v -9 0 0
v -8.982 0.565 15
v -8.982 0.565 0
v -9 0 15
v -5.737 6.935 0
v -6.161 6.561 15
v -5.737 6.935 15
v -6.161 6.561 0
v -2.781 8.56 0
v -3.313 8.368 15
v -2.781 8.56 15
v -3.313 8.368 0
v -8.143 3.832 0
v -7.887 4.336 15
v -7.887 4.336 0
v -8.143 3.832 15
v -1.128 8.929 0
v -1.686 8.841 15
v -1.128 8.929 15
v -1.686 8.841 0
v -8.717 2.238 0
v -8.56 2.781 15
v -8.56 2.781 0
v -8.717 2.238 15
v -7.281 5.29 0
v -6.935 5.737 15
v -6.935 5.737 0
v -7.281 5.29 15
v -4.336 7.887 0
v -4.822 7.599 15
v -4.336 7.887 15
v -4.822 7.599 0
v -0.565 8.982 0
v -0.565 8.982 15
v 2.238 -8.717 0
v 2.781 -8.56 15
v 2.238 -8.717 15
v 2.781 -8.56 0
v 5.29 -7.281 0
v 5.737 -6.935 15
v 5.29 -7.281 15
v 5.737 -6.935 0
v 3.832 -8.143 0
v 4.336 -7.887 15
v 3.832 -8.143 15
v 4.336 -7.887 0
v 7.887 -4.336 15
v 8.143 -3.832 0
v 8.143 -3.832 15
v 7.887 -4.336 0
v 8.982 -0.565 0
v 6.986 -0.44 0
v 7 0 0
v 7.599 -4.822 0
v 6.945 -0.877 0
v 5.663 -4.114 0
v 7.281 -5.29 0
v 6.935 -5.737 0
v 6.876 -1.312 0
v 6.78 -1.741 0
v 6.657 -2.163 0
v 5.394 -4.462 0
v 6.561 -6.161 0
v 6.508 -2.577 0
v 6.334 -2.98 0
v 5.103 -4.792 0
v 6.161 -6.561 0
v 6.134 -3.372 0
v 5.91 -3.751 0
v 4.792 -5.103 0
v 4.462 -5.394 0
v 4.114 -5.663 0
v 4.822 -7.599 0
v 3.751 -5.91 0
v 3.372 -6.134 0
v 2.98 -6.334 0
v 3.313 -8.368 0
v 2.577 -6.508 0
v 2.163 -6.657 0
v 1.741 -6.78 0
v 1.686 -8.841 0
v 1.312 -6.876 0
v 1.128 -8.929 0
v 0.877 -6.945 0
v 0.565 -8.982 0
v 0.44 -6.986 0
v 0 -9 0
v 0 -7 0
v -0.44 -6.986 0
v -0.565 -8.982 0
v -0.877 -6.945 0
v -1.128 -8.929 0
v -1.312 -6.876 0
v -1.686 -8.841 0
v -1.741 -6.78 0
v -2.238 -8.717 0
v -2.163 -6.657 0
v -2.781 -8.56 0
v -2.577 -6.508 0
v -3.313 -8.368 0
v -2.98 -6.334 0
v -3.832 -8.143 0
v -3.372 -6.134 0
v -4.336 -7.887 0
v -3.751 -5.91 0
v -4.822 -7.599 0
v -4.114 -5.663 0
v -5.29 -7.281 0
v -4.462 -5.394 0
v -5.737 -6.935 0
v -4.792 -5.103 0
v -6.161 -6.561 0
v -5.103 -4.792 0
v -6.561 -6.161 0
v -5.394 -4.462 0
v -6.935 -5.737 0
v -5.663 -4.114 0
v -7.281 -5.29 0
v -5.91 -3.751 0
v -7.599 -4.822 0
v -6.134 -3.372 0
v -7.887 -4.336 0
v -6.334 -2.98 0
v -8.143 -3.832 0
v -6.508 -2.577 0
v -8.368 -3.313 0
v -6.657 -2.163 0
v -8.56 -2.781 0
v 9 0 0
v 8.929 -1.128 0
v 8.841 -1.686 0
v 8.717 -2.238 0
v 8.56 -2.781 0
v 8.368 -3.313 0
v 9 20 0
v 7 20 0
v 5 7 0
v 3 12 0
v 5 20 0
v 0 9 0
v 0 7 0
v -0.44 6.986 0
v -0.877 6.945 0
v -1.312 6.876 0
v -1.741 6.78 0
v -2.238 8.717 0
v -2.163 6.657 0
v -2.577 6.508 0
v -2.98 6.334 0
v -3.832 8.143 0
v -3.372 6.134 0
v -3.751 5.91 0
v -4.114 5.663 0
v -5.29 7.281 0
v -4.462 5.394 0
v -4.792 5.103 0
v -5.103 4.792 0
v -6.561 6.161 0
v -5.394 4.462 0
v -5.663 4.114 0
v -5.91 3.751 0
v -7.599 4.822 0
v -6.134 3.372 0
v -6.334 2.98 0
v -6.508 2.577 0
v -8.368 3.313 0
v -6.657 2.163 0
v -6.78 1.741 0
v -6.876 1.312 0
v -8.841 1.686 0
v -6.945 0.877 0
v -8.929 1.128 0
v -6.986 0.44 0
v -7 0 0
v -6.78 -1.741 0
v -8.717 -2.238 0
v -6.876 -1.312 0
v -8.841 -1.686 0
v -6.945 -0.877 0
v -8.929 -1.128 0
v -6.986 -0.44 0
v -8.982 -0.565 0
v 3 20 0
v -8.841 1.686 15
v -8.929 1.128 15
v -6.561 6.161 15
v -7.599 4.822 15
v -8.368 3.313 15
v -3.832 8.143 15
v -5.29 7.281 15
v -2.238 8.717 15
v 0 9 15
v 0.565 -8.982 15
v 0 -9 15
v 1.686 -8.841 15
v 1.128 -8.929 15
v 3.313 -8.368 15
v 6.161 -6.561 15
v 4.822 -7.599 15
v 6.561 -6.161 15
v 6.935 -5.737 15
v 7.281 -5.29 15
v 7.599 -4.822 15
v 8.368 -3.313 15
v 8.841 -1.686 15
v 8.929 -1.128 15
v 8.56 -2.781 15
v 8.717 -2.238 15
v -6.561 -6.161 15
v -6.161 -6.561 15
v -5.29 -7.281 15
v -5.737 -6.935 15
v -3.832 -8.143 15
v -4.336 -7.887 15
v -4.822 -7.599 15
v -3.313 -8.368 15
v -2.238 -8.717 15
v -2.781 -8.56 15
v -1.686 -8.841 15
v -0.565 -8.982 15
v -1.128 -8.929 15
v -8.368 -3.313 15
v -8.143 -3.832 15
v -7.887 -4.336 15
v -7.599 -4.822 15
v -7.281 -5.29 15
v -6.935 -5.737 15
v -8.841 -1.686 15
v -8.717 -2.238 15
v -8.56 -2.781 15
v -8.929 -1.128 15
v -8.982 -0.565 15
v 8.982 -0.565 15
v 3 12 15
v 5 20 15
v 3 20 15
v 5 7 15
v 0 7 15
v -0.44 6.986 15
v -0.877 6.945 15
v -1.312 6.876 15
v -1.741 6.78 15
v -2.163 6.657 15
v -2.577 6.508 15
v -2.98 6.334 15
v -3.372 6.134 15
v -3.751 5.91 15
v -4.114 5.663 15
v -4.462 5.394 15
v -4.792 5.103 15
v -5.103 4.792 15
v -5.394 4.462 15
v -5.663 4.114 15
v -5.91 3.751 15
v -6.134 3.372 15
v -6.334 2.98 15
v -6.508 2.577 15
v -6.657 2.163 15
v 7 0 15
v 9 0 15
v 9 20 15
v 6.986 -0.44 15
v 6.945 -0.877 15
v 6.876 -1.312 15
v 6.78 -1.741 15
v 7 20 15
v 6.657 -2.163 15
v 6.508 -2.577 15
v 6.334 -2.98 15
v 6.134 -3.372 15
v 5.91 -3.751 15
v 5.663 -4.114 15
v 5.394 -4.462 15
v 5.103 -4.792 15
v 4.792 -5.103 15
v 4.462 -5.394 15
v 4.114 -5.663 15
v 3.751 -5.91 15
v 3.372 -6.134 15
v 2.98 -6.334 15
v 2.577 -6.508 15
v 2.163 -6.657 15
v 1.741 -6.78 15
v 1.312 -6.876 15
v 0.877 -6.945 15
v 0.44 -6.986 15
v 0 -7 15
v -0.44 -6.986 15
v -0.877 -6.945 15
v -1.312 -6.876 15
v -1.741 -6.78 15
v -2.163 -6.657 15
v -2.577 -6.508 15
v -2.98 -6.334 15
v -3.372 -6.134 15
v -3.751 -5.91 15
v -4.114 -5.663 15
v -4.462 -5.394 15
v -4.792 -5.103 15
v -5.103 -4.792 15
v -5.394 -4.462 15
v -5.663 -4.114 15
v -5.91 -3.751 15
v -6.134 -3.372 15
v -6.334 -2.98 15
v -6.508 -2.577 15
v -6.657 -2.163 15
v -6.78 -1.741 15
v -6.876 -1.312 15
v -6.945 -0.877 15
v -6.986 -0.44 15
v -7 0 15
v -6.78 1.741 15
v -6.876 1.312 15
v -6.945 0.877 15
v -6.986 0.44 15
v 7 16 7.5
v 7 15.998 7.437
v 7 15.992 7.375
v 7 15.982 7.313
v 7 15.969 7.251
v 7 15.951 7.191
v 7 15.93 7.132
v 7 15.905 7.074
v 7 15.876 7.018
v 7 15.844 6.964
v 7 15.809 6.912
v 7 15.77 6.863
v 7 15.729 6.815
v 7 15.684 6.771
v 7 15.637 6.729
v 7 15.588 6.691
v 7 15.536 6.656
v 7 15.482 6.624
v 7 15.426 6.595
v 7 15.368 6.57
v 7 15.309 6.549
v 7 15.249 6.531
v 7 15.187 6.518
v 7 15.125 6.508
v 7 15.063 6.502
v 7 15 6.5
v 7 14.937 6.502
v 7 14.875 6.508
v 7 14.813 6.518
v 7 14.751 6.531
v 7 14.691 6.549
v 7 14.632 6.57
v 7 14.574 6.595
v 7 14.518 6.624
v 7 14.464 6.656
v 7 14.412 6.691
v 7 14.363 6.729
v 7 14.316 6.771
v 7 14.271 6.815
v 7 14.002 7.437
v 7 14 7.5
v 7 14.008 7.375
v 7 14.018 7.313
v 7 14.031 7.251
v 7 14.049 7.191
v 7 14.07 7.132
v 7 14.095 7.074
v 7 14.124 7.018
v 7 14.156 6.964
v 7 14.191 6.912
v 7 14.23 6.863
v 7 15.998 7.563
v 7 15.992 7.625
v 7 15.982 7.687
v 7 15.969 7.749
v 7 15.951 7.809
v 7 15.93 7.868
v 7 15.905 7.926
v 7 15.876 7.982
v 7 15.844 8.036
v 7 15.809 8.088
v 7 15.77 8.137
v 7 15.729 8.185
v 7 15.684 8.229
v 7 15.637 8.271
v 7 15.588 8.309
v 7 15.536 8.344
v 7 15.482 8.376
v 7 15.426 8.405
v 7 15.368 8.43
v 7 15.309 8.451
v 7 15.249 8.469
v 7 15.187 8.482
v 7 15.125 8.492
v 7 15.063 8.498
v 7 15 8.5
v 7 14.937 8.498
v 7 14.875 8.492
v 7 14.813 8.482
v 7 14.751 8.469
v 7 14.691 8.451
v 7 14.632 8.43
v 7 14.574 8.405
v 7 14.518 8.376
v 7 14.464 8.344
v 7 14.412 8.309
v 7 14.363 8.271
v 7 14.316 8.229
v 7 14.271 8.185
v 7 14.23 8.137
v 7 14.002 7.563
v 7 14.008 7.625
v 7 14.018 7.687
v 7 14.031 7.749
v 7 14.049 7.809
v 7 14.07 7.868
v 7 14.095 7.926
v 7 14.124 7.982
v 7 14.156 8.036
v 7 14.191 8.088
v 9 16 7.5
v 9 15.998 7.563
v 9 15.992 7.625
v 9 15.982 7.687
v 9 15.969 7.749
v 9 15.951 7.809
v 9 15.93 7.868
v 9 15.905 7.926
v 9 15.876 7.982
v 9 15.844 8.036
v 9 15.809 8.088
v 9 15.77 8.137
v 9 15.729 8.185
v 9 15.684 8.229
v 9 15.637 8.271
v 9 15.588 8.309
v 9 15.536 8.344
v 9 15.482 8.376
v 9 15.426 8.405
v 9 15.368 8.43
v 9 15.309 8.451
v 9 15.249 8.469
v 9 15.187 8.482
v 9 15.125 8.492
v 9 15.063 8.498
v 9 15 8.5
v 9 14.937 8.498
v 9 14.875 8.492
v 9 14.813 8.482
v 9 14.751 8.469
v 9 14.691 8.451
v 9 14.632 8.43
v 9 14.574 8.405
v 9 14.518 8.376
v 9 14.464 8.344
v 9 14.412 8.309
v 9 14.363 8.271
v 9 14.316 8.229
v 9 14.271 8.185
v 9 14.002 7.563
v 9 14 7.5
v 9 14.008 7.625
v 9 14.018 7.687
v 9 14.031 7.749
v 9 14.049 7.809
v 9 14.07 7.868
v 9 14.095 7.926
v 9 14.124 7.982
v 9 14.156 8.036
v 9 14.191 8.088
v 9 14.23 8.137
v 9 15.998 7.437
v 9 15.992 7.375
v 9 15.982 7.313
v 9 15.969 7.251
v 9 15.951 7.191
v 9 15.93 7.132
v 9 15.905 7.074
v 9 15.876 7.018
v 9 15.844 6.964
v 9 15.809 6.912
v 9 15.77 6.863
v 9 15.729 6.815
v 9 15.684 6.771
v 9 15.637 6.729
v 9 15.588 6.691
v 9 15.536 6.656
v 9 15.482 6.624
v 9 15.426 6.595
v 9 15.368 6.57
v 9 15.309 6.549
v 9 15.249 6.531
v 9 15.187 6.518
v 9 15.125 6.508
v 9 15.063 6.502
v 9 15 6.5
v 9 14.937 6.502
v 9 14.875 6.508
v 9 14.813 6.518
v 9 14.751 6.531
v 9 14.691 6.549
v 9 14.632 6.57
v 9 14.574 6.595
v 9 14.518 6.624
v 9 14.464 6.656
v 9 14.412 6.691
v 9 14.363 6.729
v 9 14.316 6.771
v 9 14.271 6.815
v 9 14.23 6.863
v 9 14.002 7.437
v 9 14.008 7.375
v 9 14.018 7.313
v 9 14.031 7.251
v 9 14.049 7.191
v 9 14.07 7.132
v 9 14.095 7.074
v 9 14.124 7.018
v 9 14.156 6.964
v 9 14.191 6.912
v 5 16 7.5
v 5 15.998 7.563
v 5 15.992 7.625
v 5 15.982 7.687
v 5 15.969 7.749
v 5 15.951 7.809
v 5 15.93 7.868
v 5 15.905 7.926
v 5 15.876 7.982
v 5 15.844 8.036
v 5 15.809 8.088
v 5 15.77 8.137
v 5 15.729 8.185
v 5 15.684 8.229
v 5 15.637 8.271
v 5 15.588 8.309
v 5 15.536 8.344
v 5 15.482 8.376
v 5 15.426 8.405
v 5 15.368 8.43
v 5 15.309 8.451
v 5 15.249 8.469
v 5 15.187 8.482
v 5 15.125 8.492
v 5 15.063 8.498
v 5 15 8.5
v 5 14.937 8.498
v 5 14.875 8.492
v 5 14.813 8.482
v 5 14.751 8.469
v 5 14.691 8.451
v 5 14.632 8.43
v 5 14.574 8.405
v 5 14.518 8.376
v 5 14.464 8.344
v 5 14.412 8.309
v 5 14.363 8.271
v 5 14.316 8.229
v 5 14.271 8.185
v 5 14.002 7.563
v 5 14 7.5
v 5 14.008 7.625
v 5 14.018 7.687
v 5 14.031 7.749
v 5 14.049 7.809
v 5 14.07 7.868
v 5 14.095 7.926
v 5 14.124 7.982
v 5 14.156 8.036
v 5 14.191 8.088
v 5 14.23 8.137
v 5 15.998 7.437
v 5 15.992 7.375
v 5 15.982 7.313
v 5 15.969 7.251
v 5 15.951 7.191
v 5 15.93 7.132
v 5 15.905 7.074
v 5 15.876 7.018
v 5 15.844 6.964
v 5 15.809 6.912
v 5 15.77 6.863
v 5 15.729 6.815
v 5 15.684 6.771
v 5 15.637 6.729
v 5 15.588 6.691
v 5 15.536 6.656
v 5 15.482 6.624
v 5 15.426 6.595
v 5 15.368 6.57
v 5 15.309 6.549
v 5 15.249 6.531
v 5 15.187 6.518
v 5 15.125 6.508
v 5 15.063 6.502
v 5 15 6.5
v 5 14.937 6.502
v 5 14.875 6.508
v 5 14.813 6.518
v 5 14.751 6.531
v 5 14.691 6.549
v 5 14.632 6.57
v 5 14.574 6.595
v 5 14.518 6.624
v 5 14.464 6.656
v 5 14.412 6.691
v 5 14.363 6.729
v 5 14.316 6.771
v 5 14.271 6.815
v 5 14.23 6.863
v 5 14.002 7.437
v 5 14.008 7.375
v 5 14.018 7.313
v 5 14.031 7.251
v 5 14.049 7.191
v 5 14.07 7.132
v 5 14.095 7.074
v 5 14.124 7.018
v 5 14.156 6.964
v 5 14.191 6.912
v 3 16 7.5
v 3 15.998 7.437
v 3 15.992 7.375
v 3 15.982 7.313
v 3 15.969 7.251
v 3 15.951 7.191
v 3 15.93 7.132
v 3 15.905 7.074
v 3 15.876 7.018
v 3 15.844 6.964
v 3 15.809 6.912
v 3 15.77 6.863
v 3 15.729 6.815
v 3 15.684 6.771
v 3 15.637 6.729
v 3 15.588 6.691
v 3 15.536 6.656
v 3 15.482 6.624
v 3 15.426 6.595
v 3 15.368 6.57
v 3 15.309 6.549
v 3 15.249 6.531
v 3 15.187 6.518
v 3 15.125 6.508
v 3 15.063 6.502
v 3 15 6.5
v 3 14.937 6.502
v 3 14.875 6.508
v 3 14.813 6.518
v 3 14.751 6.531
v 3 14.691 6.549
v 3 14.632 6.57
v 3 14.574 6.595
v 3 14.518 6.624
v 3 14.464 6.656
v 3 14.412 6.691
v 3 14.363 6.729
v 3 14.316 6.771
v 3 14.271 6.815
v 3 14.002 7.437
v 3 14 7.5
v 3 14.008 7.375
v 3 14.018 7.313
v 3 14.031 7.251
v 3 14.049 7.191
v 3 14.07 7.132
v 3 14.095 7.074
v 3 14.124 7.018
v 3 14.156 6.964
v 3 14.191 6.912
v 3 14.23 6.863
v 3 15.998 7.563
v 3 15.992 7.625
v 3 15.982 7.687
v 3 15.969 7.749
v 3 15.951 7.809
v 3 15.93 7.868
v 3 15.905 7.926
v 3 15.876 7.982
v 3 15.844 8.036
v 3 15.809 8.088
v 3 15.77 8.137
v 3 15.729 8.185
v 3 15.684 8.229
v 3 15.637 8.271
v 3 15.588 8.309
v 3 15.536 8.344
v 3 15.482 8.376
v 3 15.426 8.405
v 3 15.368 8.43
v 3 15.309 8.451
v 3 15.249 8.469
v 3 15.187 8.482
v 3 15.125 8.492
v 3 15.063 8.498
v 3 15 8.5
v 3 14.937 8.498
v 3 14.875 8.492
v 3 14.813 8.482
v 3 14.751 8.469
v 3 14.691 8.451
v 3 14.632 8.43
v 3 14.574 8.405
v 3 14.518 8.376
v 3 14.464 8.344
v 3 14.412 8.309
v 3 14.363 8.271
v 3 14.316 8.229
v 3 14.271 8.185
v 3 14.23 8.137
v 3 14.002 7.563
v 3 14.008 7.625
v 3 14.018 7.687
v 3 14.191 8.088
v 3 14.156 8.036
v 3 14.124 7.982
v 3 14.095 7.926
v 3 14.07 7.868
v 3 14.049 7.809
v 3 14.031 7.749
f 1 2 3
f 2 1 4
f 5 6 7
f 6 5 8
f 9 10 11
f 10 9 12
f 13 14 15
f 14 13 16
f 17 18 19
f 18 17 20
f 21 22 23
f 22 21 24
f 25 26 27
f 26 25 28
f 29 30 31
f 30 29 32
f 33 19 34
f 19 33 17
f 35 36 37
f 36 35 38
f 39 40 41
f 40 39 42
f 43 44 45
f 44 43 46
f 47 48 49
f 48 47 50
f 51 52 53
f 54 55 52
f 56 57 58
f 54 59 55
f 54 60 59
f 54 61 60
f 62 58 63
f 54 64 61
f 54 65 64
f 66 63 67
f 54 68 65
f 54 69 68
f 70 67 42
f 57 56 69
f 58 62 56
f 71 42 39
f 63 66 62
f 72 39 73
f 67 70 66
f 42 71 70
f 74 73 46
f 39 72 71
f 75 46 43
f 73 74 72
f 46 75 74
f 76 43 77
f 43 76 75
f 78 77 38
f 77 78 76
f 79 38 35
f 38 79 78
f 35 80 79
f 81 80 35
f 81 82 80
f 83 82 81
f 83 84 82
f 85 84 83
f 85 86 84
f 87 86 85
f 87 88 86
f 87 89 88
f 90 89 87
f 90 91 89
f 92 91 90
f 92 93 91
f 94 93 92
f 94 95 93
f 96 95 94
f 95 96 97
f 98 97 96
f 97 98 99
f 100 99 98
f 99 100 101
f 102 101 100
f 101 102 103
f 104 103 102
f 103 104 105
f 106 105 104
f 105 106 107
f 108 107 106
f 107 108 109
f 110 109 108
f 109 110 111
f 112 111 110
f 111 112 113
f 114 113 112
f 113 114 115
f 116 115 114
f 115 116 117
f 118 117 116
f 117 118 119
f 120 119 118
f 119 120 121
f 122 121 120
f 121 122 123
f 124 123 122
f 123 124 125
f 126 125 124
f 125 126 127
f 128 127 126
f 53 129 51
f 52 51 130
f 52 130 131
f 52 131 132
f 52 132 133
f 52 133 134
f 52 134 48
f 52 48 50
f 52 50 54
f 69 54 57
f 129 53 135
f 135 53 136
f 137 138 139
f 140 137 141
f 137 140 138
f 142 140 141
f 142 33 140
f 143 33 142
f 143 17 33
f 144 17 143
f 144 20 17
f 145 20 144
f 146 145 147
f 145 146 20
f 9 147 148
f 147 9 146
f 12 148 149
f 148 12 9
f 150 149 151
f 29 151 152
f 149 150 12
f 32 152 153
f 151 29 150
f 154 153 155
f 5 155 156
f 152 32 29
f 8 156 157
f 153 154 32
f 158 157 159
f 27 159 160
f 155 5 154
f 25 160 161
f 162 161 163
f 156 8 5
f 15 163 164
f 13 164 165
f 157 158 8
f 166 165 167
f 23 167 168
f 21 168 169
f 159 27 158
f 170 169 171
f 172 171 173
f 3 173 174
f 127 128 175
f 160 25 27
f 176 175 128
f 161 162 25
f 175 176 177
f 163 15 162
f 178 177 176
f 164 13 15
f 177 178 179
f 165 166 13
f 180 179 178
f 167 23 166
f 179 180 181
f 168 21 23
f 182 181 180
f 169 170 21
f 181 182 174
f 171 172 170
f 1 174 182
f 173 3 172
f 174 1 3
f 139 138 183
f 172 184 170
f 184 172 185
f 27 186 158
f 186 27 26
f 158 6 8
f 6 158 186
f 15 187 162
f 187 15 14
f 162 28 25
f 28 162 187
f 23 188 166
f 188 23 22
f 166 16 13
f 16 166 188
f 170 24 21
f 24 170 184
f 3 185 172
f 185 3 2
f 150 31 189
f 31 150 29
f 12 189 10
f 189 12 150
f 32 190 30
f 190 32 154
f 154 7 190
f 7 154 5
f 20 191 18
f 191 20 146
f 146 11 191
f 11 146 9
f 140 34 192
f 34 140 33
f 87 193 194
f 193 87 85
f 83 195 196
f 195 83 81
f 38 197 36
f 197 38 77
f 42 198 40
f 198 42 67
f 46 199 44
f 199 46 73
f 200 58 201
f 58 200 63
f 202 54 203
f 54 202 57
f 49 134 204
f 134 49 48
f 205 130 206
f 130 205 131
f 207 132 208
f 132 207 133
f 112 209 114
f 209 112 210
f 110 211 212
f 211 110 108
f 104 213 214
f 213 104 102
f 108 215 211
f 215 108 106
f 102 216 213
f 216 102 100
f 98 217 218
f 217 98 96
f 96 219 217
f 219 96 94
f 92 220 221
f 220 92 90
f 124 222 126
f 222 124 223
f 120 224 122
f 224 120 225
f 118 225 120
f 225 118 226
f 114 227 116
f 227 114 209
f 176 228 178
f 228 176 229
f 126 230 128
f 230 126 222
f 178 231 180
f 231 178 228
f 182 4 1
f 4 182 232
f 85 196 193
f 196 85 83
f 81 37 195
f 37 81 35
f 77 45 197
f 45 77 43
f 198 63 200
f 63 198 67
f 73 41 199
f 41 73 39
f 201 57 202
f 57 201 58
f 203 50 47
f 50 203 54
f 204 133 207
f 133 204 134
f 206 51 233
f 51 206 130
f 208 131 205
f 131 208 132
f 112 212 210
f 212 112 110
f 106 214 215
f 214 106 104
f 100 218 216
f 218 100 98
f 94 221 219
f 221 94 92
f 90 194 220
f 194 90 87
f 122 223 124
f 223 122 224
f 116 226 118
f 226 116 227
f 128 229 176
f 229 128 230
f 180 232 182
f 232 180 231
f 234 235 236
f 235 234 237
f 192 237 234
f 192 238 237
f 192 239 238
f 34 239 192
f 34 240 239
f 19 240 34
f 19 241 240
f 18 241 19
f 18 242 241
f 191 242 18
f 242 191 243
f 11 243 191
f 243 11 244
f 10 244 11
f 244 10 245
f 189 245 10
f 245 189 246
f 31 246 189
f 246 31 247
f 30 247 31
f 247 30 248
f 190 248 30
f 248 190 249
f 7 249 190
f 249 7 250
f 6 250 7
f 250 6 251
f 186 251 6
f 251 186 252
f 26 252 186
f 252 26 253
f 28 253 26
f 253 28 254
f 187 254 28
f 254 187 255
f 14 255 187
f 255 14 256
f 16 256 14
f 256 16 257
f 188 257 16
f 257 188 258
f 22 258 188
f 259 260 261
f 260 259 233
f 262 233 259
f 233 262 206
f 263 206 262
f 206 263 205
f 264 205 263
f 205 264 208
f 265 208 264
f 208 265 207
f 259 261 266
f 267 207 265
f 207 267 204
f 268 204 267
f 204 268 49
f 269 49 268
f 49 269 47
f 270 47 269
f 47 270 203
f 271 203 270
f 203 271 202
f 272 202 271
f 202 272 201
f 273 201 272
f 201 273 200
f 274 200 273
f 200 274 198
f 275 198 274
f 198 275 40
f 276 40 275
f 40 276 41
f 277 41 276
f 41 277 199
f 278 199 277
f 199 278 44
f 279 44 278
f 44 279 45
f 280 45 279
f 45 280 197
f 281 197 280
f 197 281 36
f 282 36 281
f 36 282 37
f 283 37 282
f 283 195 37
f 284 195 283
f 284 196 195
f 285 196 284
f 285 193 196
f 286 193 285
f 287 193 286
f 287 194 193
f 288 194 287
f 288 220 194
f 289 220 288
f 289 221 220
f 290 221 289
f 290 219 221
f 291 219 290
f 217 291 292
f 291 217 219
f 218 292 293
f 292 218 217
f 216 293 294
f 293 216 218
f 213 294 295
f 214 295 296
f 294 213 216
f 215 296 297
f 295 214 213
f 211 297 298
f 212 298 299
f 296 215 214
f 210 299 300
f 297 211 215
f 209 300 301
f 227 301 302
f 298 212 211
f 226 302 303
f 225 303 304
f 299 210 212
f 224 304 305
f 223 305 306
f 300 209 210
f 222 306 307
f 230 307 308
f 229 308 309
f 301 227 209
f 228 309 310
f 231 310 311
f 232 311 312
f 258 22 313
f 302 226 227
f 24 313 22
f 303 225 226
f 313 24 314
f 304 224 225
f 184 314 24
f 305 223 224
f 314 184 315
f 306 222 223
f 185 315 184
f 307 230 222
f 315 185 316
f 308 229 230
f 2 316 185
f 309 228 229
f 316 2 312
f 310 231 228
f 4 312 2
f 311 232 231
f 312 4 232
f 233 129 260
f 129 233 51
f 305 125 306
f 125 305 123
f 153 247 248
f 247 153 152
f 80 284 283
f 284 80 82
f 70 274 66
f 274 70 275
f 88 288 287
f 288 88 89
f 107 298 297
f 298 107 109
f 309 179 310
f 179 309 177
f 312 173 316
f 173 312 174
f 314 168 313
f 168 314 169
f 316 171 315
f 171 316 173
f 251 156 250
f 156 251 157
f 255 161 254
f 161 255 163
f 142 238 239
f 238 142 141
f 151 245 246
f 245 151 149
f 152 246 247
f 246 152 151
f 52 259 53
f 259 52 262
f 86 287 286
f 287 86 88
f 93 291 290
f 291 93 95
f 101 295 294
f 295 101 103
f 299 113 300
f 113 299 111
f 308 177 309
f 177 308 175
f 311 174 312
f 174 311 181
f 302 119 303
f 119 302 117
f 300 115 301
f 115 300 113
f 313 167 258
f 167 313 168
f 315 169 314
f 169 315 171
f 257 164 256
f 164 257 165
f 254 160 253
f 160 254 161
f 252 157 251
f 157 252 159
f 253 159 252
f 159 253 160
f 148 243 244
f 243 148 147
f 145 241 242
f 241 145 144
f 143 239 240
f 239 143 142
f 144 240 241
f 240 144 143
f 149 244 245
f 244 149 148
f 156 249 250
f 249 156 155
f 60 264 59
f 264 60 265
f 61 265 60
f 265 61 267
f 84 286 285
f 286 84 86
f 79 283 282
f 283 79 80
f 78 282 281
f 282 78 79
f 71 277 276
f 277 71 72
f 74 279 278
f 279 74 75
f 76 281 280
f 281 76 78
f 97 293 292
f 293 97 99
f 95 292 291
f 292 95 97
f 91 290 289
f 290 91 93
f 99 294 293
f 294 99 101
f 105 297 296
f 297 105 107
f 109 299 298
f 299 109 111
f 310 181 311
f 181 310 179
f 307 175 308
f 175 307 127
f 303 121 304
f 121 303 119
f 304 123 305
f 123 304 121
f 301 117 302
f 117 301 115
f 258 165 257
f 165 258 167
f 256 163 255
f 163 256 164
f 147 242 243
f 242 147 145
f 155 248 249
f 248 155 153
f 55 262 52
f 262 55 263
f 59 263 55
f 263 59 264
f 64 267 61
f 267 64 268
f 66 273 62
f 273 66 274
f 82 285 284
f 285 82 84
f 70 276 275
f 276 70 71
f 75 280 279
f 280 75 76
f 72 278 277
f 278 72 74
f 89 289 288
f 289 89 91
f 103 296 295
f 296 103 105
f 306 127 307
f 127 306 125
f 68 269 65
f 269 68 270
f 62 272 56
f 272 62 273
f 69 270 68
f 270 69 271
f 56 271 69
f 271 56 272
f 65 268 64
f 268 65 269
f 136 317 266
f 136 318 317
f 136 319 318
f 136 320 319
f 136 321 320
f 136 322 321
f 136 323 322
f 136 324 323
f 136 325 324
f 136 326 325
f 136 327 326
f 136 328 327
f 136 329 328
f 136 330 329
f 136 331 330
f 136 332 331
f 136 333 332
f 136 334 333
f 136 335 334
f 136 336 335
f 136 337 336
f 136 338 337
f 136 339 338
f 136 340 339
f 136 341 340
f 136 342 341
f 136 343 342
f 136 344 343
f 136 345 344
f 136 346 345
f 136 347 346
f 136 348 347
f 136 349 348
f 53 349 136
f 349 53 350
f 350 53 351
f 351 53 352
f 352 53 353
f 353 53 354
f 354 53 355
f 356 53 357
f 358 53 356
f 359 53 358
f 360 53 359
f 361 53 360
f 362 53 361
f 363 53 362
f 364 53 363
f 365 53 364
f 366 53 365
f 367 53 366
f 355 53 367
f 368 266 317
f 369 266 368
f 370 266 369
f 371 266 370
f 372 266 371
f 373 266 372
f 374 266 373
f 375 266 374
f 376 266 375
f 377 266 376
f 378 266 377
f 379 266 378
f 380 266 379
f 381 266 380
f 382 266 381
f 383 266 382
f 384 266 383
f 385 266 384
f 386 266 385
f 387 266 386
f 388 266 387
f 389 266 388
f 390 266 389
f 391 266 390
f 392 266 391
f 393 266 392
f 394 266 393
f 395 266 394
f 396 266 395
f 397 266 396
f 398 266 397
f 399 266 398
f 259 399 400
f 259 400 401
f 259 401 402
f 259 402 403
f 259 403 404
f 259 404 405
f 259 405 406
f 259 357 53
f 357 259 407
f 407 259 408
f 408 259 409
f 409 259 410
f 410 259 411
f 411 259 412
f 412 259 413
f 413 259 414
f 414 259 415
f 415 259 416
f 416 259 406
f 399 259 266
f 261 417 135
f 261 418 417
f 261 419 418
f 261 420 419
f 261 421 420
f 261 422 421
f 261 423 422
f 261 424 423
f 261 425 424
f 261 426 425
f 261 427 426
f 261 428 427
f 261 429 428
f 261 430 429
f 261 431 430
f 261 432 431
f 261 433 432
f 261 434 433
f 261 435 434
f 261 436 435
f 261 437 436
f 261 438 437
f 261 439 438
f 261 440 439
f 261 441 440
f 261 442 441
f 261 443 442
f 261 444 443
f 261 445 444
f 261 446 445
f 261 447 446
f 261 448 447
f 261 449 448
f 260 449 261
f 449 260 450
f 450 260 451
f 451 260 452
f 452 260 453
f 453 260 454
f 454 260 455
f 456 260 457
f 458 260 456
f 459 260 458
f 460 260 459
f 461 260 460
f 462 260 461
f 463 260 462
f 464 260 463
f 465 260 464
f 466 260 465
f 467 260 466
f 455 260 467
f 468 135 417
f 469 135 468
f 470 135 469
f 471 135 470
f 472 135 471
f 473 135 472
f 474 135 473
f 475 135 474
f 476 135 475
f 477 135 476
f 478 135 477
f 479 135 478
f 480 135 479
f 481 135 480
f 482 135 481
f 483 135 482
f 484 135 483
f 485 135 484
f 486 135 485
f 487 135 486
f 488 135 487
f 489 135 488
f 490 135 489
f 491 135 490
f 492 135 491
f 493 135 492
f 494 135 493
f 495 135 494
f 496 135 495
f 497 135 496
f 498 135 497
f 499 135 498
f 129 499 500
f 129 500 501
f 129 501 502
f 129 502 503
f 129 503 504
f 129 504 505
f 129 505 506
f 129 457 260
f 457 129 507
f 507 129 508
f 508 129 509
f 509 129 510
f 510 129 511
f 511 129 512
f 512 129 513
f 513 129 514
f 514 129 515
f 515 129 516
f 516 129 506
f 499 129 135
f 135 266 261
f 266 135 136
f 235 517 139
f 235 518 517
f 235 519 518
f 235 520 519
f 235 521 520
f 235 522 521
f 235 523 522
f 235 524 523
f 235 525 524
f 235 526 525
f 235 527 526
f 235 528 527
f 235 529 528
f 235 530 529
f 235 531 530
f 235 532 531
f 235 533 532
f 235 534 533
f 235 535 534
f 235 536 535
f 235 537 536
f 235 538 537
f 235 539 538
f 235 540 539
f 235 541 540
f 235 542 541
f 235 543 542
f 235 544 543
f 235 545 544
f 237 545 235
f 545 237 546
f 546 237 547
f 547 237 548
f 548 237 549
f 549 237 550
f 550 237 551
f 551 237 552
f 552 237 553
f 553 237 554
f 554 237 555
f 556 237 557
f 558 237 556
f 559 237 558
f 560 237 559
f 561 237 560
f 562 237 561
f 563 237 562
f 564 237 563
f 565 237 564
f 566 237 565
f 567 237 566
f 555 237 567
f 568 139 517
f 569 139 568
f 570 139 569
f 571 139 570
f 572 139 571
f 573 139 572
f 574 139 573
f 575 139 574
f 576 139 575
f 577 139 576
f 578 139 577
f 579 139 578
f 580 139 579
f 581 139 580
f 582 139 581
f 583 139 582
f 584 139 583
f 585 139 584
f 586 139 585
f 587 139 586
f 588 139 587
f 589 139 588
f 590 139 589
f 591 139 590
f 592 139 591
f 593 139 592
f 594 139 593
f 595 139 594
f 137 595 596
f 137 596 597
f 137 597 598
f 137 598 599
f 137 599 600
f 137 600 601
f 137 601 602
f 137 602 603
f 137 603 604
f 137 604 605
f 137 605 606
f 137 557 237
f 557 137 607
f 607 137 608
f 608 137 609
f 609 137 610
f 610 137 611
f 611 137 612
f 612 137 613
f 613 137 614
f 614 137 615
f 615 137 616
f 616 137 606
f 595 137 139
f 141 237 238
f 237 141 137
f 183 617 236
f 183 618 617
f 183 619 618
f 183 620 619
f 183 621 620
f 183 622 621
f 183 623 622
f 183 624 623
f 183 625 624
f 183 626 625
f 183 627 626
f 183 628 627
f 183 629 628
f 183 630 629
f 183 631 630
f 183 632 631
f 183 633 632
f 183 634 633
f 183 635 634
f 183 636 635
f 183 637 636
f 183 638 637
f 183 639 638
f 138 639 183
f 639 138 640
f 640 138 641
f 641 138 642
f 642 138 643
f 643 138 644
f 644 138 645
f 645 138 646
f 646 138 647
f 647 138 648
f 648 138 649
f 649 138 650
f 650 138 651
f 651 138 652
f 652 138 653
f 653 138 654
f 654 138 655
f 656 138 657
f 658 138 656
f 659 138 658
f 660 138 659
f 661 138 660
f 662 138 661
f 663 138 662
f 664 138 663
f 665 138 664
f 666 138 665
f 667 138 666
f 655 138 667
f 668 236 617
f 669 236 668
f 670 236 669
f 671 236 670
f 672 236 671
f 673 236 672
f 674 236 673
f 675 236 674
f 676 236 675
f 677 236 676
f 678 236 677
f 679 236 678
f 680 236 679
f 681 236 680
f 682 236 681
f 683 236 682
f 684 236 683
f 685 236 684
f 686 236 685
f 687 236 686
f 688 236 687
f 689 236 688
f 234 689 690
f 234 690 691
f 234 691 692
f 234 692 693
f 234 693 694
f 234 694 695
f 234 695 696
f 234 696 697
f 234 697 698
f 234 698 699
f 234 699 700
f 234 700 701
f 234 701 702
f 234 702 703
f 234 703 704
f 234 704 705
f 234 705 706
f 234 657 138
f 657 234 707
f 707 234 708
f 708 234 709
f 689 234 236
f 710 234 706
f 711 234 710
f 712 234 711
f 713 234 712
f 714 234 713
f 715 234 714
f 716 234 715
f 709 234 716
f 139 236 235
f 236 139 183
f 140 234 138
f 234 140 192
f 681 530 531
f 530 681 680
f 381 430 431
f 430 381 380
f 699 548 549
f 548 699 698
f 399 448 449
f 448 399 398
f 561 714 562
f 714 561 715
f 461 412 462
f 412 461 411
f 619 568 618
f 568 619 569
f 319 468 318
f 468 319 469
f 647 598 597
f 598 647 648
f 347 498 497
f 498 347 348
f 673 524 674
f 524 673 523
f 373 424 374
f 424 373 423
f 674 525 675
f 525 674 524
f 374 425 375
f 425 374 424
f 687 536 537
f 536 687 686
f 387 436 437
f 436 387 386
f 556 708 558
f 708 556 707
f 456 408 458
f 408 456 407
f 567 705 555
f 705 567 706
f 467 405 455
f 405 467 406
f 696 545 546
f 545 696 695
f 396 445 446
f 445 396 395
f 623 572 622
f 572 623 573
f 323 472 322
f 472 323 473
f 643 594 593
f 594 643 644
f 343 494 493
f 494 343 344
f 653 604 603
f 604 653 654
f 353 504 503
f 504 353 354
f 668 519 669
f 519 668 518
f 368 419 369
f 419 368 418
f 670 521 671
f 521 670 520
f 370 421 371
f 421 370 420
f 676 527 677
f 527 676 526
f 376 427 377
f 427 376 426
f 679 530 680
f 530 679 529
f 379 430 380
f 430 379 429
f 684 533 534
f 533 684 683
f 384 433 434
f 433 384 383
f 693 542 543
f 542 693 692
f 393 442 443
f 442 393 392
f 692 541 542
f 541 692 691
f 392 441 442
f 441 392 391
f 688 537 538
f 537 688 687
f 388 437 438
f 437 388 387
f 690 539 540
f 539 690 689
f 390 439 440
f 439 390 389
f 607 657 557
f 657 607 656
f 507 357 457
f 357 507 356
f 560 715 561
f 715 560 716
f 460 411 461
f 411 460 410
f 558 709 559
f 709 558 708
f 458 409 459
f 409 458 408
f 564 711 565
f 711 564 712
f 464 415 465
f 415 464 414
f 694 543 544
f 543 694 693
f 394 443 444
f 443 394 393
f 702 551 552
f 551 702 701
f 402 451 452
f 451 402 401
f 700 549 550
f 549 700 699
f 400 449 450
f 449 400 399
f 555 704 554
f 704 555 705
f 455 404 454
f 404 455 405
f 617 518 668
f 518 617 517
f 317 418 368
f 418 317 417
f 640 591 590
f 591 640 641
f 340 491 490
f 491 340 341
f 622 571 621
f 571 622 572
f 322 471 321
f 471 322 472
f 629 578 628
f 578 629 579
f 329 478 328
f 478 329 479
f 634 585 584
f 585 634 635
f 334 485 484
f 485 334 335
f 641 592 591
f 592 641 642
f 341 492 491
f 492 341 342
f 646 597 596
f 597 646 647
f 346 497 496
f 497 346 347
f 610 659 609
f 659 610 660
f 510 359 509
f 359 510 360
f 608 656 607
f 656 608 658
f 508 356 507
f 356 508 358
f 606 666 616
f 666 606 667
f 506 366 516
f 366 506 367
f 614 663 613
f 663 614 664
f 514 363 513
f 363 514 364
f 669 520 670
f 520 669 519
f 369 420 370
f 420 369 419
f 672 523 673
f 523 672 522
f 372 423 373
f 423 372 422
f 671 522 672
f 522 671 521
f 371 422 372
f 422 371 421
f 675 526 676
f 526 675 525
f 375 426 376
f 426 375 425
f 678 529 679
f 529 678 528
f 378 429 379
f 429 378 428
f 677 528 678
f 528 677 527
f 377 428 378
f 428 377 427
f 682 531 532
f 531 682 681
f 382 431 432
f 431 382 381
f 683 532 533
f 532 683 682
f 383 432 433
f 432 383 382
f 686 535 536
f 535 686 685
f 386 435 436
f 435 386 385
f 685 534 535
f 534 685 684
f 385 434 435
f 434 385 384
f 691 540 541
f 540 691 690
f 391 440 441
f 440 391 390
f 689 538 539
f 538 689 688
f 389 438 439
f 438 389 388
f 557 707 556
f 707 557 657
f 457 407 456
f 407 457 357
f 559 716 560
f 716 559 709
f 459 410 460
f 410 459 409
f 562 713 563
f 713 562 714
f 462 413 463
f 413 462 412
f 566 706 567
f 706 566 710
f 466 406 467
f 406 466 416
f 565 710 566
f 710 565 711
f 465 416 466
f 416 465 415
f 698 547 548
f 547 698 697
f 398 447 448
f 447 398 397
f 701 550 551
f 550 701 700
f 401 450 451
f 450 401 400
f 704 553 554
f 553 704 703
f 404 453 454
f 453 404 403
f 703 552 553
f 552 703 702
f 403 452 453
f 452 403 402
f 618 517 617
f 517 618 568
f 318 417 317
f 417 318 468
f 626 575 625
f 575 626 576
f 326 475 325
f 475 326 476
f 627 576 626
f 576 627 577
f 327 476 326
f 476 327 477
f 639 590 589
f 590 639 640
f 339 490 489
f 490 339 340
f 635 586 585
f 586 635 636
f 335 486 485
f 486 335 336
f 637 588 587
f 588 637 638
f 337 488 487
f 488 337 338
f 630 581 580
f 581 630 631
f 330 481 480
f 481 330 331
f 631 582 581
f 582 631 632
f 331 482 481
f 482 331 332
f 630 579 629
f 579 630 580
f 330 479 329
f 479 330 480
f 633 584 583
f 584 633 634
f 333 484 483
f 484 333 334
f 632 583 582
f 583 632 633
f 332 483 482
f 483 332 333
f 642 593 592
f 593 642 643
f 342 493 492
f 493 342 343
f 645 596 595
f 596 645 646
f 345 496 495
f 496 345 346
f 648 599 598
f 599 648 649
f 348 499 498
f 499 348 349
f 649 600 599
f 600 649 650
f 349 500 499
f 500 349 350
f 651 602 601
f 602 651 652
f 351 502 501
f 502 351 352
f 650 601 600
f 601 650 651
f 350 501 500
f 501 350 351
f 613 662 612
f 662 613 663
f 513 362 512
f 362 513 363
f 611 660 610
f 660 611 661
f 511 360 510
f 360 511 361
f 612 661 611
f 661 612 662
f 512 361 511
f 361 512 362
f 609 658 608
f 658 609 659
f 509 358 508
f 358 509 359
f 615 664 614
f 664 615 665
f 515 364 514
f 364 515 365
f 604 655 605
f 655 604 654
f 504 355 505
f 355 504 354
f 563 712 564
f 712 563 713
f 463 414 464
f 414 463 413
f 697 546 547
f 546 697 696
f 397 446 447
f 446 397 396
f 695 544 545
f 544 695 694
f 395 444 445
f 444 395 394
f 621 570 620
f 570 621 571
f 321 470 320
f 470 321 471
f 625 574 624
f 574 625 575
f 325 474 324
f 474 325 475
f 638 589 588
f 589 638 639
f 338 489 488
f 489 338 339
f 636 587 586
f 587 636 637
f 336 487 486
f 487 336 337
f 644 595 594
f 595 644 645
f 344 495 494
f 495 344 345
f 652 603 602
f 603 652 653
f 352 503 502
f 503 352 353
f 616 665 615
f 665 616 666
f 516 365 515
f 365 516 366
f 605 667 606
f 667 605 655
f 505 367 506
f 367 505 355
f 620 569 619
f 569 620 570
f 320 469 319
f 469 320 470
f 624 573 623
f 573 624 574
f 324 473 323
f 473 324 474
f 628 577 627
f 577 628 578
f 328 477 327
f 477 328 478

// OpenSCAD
$fn = 100;

_inner_size_radius=7; //7=LED pipe holder


difference() {
    
    union() {
        difference() {
            cylinder(h=15, r=_inner_size_radius+2);
            translate([0, 0, -1])
            cylinder(h=17, r=_inner_size_radius);

            color("red")
            translate([0, 0, -1])
            cube([9, 10, 17]); 
        }


        color("pink")
        translate([7, 0, 0])
        cube([2, 20, 15]);

        color("lightgreen")
        translate([0, 7, 0])
        cube([5, 2, 15]);

        color("lightblue")
        translate([3, 7, 0])
        cube([2, 13, 15]);

        color("lightgrey")
            linear_extrude(15)
            polygon(points=[
                [0,9],
                [3,9],
                [3,12],
                [0,9]
            ]);
    }

    color("red")
    translate([0, 15, 7.5])
    rotate([90, 0, 90])
    cylinder(h=20, r=1);

}
